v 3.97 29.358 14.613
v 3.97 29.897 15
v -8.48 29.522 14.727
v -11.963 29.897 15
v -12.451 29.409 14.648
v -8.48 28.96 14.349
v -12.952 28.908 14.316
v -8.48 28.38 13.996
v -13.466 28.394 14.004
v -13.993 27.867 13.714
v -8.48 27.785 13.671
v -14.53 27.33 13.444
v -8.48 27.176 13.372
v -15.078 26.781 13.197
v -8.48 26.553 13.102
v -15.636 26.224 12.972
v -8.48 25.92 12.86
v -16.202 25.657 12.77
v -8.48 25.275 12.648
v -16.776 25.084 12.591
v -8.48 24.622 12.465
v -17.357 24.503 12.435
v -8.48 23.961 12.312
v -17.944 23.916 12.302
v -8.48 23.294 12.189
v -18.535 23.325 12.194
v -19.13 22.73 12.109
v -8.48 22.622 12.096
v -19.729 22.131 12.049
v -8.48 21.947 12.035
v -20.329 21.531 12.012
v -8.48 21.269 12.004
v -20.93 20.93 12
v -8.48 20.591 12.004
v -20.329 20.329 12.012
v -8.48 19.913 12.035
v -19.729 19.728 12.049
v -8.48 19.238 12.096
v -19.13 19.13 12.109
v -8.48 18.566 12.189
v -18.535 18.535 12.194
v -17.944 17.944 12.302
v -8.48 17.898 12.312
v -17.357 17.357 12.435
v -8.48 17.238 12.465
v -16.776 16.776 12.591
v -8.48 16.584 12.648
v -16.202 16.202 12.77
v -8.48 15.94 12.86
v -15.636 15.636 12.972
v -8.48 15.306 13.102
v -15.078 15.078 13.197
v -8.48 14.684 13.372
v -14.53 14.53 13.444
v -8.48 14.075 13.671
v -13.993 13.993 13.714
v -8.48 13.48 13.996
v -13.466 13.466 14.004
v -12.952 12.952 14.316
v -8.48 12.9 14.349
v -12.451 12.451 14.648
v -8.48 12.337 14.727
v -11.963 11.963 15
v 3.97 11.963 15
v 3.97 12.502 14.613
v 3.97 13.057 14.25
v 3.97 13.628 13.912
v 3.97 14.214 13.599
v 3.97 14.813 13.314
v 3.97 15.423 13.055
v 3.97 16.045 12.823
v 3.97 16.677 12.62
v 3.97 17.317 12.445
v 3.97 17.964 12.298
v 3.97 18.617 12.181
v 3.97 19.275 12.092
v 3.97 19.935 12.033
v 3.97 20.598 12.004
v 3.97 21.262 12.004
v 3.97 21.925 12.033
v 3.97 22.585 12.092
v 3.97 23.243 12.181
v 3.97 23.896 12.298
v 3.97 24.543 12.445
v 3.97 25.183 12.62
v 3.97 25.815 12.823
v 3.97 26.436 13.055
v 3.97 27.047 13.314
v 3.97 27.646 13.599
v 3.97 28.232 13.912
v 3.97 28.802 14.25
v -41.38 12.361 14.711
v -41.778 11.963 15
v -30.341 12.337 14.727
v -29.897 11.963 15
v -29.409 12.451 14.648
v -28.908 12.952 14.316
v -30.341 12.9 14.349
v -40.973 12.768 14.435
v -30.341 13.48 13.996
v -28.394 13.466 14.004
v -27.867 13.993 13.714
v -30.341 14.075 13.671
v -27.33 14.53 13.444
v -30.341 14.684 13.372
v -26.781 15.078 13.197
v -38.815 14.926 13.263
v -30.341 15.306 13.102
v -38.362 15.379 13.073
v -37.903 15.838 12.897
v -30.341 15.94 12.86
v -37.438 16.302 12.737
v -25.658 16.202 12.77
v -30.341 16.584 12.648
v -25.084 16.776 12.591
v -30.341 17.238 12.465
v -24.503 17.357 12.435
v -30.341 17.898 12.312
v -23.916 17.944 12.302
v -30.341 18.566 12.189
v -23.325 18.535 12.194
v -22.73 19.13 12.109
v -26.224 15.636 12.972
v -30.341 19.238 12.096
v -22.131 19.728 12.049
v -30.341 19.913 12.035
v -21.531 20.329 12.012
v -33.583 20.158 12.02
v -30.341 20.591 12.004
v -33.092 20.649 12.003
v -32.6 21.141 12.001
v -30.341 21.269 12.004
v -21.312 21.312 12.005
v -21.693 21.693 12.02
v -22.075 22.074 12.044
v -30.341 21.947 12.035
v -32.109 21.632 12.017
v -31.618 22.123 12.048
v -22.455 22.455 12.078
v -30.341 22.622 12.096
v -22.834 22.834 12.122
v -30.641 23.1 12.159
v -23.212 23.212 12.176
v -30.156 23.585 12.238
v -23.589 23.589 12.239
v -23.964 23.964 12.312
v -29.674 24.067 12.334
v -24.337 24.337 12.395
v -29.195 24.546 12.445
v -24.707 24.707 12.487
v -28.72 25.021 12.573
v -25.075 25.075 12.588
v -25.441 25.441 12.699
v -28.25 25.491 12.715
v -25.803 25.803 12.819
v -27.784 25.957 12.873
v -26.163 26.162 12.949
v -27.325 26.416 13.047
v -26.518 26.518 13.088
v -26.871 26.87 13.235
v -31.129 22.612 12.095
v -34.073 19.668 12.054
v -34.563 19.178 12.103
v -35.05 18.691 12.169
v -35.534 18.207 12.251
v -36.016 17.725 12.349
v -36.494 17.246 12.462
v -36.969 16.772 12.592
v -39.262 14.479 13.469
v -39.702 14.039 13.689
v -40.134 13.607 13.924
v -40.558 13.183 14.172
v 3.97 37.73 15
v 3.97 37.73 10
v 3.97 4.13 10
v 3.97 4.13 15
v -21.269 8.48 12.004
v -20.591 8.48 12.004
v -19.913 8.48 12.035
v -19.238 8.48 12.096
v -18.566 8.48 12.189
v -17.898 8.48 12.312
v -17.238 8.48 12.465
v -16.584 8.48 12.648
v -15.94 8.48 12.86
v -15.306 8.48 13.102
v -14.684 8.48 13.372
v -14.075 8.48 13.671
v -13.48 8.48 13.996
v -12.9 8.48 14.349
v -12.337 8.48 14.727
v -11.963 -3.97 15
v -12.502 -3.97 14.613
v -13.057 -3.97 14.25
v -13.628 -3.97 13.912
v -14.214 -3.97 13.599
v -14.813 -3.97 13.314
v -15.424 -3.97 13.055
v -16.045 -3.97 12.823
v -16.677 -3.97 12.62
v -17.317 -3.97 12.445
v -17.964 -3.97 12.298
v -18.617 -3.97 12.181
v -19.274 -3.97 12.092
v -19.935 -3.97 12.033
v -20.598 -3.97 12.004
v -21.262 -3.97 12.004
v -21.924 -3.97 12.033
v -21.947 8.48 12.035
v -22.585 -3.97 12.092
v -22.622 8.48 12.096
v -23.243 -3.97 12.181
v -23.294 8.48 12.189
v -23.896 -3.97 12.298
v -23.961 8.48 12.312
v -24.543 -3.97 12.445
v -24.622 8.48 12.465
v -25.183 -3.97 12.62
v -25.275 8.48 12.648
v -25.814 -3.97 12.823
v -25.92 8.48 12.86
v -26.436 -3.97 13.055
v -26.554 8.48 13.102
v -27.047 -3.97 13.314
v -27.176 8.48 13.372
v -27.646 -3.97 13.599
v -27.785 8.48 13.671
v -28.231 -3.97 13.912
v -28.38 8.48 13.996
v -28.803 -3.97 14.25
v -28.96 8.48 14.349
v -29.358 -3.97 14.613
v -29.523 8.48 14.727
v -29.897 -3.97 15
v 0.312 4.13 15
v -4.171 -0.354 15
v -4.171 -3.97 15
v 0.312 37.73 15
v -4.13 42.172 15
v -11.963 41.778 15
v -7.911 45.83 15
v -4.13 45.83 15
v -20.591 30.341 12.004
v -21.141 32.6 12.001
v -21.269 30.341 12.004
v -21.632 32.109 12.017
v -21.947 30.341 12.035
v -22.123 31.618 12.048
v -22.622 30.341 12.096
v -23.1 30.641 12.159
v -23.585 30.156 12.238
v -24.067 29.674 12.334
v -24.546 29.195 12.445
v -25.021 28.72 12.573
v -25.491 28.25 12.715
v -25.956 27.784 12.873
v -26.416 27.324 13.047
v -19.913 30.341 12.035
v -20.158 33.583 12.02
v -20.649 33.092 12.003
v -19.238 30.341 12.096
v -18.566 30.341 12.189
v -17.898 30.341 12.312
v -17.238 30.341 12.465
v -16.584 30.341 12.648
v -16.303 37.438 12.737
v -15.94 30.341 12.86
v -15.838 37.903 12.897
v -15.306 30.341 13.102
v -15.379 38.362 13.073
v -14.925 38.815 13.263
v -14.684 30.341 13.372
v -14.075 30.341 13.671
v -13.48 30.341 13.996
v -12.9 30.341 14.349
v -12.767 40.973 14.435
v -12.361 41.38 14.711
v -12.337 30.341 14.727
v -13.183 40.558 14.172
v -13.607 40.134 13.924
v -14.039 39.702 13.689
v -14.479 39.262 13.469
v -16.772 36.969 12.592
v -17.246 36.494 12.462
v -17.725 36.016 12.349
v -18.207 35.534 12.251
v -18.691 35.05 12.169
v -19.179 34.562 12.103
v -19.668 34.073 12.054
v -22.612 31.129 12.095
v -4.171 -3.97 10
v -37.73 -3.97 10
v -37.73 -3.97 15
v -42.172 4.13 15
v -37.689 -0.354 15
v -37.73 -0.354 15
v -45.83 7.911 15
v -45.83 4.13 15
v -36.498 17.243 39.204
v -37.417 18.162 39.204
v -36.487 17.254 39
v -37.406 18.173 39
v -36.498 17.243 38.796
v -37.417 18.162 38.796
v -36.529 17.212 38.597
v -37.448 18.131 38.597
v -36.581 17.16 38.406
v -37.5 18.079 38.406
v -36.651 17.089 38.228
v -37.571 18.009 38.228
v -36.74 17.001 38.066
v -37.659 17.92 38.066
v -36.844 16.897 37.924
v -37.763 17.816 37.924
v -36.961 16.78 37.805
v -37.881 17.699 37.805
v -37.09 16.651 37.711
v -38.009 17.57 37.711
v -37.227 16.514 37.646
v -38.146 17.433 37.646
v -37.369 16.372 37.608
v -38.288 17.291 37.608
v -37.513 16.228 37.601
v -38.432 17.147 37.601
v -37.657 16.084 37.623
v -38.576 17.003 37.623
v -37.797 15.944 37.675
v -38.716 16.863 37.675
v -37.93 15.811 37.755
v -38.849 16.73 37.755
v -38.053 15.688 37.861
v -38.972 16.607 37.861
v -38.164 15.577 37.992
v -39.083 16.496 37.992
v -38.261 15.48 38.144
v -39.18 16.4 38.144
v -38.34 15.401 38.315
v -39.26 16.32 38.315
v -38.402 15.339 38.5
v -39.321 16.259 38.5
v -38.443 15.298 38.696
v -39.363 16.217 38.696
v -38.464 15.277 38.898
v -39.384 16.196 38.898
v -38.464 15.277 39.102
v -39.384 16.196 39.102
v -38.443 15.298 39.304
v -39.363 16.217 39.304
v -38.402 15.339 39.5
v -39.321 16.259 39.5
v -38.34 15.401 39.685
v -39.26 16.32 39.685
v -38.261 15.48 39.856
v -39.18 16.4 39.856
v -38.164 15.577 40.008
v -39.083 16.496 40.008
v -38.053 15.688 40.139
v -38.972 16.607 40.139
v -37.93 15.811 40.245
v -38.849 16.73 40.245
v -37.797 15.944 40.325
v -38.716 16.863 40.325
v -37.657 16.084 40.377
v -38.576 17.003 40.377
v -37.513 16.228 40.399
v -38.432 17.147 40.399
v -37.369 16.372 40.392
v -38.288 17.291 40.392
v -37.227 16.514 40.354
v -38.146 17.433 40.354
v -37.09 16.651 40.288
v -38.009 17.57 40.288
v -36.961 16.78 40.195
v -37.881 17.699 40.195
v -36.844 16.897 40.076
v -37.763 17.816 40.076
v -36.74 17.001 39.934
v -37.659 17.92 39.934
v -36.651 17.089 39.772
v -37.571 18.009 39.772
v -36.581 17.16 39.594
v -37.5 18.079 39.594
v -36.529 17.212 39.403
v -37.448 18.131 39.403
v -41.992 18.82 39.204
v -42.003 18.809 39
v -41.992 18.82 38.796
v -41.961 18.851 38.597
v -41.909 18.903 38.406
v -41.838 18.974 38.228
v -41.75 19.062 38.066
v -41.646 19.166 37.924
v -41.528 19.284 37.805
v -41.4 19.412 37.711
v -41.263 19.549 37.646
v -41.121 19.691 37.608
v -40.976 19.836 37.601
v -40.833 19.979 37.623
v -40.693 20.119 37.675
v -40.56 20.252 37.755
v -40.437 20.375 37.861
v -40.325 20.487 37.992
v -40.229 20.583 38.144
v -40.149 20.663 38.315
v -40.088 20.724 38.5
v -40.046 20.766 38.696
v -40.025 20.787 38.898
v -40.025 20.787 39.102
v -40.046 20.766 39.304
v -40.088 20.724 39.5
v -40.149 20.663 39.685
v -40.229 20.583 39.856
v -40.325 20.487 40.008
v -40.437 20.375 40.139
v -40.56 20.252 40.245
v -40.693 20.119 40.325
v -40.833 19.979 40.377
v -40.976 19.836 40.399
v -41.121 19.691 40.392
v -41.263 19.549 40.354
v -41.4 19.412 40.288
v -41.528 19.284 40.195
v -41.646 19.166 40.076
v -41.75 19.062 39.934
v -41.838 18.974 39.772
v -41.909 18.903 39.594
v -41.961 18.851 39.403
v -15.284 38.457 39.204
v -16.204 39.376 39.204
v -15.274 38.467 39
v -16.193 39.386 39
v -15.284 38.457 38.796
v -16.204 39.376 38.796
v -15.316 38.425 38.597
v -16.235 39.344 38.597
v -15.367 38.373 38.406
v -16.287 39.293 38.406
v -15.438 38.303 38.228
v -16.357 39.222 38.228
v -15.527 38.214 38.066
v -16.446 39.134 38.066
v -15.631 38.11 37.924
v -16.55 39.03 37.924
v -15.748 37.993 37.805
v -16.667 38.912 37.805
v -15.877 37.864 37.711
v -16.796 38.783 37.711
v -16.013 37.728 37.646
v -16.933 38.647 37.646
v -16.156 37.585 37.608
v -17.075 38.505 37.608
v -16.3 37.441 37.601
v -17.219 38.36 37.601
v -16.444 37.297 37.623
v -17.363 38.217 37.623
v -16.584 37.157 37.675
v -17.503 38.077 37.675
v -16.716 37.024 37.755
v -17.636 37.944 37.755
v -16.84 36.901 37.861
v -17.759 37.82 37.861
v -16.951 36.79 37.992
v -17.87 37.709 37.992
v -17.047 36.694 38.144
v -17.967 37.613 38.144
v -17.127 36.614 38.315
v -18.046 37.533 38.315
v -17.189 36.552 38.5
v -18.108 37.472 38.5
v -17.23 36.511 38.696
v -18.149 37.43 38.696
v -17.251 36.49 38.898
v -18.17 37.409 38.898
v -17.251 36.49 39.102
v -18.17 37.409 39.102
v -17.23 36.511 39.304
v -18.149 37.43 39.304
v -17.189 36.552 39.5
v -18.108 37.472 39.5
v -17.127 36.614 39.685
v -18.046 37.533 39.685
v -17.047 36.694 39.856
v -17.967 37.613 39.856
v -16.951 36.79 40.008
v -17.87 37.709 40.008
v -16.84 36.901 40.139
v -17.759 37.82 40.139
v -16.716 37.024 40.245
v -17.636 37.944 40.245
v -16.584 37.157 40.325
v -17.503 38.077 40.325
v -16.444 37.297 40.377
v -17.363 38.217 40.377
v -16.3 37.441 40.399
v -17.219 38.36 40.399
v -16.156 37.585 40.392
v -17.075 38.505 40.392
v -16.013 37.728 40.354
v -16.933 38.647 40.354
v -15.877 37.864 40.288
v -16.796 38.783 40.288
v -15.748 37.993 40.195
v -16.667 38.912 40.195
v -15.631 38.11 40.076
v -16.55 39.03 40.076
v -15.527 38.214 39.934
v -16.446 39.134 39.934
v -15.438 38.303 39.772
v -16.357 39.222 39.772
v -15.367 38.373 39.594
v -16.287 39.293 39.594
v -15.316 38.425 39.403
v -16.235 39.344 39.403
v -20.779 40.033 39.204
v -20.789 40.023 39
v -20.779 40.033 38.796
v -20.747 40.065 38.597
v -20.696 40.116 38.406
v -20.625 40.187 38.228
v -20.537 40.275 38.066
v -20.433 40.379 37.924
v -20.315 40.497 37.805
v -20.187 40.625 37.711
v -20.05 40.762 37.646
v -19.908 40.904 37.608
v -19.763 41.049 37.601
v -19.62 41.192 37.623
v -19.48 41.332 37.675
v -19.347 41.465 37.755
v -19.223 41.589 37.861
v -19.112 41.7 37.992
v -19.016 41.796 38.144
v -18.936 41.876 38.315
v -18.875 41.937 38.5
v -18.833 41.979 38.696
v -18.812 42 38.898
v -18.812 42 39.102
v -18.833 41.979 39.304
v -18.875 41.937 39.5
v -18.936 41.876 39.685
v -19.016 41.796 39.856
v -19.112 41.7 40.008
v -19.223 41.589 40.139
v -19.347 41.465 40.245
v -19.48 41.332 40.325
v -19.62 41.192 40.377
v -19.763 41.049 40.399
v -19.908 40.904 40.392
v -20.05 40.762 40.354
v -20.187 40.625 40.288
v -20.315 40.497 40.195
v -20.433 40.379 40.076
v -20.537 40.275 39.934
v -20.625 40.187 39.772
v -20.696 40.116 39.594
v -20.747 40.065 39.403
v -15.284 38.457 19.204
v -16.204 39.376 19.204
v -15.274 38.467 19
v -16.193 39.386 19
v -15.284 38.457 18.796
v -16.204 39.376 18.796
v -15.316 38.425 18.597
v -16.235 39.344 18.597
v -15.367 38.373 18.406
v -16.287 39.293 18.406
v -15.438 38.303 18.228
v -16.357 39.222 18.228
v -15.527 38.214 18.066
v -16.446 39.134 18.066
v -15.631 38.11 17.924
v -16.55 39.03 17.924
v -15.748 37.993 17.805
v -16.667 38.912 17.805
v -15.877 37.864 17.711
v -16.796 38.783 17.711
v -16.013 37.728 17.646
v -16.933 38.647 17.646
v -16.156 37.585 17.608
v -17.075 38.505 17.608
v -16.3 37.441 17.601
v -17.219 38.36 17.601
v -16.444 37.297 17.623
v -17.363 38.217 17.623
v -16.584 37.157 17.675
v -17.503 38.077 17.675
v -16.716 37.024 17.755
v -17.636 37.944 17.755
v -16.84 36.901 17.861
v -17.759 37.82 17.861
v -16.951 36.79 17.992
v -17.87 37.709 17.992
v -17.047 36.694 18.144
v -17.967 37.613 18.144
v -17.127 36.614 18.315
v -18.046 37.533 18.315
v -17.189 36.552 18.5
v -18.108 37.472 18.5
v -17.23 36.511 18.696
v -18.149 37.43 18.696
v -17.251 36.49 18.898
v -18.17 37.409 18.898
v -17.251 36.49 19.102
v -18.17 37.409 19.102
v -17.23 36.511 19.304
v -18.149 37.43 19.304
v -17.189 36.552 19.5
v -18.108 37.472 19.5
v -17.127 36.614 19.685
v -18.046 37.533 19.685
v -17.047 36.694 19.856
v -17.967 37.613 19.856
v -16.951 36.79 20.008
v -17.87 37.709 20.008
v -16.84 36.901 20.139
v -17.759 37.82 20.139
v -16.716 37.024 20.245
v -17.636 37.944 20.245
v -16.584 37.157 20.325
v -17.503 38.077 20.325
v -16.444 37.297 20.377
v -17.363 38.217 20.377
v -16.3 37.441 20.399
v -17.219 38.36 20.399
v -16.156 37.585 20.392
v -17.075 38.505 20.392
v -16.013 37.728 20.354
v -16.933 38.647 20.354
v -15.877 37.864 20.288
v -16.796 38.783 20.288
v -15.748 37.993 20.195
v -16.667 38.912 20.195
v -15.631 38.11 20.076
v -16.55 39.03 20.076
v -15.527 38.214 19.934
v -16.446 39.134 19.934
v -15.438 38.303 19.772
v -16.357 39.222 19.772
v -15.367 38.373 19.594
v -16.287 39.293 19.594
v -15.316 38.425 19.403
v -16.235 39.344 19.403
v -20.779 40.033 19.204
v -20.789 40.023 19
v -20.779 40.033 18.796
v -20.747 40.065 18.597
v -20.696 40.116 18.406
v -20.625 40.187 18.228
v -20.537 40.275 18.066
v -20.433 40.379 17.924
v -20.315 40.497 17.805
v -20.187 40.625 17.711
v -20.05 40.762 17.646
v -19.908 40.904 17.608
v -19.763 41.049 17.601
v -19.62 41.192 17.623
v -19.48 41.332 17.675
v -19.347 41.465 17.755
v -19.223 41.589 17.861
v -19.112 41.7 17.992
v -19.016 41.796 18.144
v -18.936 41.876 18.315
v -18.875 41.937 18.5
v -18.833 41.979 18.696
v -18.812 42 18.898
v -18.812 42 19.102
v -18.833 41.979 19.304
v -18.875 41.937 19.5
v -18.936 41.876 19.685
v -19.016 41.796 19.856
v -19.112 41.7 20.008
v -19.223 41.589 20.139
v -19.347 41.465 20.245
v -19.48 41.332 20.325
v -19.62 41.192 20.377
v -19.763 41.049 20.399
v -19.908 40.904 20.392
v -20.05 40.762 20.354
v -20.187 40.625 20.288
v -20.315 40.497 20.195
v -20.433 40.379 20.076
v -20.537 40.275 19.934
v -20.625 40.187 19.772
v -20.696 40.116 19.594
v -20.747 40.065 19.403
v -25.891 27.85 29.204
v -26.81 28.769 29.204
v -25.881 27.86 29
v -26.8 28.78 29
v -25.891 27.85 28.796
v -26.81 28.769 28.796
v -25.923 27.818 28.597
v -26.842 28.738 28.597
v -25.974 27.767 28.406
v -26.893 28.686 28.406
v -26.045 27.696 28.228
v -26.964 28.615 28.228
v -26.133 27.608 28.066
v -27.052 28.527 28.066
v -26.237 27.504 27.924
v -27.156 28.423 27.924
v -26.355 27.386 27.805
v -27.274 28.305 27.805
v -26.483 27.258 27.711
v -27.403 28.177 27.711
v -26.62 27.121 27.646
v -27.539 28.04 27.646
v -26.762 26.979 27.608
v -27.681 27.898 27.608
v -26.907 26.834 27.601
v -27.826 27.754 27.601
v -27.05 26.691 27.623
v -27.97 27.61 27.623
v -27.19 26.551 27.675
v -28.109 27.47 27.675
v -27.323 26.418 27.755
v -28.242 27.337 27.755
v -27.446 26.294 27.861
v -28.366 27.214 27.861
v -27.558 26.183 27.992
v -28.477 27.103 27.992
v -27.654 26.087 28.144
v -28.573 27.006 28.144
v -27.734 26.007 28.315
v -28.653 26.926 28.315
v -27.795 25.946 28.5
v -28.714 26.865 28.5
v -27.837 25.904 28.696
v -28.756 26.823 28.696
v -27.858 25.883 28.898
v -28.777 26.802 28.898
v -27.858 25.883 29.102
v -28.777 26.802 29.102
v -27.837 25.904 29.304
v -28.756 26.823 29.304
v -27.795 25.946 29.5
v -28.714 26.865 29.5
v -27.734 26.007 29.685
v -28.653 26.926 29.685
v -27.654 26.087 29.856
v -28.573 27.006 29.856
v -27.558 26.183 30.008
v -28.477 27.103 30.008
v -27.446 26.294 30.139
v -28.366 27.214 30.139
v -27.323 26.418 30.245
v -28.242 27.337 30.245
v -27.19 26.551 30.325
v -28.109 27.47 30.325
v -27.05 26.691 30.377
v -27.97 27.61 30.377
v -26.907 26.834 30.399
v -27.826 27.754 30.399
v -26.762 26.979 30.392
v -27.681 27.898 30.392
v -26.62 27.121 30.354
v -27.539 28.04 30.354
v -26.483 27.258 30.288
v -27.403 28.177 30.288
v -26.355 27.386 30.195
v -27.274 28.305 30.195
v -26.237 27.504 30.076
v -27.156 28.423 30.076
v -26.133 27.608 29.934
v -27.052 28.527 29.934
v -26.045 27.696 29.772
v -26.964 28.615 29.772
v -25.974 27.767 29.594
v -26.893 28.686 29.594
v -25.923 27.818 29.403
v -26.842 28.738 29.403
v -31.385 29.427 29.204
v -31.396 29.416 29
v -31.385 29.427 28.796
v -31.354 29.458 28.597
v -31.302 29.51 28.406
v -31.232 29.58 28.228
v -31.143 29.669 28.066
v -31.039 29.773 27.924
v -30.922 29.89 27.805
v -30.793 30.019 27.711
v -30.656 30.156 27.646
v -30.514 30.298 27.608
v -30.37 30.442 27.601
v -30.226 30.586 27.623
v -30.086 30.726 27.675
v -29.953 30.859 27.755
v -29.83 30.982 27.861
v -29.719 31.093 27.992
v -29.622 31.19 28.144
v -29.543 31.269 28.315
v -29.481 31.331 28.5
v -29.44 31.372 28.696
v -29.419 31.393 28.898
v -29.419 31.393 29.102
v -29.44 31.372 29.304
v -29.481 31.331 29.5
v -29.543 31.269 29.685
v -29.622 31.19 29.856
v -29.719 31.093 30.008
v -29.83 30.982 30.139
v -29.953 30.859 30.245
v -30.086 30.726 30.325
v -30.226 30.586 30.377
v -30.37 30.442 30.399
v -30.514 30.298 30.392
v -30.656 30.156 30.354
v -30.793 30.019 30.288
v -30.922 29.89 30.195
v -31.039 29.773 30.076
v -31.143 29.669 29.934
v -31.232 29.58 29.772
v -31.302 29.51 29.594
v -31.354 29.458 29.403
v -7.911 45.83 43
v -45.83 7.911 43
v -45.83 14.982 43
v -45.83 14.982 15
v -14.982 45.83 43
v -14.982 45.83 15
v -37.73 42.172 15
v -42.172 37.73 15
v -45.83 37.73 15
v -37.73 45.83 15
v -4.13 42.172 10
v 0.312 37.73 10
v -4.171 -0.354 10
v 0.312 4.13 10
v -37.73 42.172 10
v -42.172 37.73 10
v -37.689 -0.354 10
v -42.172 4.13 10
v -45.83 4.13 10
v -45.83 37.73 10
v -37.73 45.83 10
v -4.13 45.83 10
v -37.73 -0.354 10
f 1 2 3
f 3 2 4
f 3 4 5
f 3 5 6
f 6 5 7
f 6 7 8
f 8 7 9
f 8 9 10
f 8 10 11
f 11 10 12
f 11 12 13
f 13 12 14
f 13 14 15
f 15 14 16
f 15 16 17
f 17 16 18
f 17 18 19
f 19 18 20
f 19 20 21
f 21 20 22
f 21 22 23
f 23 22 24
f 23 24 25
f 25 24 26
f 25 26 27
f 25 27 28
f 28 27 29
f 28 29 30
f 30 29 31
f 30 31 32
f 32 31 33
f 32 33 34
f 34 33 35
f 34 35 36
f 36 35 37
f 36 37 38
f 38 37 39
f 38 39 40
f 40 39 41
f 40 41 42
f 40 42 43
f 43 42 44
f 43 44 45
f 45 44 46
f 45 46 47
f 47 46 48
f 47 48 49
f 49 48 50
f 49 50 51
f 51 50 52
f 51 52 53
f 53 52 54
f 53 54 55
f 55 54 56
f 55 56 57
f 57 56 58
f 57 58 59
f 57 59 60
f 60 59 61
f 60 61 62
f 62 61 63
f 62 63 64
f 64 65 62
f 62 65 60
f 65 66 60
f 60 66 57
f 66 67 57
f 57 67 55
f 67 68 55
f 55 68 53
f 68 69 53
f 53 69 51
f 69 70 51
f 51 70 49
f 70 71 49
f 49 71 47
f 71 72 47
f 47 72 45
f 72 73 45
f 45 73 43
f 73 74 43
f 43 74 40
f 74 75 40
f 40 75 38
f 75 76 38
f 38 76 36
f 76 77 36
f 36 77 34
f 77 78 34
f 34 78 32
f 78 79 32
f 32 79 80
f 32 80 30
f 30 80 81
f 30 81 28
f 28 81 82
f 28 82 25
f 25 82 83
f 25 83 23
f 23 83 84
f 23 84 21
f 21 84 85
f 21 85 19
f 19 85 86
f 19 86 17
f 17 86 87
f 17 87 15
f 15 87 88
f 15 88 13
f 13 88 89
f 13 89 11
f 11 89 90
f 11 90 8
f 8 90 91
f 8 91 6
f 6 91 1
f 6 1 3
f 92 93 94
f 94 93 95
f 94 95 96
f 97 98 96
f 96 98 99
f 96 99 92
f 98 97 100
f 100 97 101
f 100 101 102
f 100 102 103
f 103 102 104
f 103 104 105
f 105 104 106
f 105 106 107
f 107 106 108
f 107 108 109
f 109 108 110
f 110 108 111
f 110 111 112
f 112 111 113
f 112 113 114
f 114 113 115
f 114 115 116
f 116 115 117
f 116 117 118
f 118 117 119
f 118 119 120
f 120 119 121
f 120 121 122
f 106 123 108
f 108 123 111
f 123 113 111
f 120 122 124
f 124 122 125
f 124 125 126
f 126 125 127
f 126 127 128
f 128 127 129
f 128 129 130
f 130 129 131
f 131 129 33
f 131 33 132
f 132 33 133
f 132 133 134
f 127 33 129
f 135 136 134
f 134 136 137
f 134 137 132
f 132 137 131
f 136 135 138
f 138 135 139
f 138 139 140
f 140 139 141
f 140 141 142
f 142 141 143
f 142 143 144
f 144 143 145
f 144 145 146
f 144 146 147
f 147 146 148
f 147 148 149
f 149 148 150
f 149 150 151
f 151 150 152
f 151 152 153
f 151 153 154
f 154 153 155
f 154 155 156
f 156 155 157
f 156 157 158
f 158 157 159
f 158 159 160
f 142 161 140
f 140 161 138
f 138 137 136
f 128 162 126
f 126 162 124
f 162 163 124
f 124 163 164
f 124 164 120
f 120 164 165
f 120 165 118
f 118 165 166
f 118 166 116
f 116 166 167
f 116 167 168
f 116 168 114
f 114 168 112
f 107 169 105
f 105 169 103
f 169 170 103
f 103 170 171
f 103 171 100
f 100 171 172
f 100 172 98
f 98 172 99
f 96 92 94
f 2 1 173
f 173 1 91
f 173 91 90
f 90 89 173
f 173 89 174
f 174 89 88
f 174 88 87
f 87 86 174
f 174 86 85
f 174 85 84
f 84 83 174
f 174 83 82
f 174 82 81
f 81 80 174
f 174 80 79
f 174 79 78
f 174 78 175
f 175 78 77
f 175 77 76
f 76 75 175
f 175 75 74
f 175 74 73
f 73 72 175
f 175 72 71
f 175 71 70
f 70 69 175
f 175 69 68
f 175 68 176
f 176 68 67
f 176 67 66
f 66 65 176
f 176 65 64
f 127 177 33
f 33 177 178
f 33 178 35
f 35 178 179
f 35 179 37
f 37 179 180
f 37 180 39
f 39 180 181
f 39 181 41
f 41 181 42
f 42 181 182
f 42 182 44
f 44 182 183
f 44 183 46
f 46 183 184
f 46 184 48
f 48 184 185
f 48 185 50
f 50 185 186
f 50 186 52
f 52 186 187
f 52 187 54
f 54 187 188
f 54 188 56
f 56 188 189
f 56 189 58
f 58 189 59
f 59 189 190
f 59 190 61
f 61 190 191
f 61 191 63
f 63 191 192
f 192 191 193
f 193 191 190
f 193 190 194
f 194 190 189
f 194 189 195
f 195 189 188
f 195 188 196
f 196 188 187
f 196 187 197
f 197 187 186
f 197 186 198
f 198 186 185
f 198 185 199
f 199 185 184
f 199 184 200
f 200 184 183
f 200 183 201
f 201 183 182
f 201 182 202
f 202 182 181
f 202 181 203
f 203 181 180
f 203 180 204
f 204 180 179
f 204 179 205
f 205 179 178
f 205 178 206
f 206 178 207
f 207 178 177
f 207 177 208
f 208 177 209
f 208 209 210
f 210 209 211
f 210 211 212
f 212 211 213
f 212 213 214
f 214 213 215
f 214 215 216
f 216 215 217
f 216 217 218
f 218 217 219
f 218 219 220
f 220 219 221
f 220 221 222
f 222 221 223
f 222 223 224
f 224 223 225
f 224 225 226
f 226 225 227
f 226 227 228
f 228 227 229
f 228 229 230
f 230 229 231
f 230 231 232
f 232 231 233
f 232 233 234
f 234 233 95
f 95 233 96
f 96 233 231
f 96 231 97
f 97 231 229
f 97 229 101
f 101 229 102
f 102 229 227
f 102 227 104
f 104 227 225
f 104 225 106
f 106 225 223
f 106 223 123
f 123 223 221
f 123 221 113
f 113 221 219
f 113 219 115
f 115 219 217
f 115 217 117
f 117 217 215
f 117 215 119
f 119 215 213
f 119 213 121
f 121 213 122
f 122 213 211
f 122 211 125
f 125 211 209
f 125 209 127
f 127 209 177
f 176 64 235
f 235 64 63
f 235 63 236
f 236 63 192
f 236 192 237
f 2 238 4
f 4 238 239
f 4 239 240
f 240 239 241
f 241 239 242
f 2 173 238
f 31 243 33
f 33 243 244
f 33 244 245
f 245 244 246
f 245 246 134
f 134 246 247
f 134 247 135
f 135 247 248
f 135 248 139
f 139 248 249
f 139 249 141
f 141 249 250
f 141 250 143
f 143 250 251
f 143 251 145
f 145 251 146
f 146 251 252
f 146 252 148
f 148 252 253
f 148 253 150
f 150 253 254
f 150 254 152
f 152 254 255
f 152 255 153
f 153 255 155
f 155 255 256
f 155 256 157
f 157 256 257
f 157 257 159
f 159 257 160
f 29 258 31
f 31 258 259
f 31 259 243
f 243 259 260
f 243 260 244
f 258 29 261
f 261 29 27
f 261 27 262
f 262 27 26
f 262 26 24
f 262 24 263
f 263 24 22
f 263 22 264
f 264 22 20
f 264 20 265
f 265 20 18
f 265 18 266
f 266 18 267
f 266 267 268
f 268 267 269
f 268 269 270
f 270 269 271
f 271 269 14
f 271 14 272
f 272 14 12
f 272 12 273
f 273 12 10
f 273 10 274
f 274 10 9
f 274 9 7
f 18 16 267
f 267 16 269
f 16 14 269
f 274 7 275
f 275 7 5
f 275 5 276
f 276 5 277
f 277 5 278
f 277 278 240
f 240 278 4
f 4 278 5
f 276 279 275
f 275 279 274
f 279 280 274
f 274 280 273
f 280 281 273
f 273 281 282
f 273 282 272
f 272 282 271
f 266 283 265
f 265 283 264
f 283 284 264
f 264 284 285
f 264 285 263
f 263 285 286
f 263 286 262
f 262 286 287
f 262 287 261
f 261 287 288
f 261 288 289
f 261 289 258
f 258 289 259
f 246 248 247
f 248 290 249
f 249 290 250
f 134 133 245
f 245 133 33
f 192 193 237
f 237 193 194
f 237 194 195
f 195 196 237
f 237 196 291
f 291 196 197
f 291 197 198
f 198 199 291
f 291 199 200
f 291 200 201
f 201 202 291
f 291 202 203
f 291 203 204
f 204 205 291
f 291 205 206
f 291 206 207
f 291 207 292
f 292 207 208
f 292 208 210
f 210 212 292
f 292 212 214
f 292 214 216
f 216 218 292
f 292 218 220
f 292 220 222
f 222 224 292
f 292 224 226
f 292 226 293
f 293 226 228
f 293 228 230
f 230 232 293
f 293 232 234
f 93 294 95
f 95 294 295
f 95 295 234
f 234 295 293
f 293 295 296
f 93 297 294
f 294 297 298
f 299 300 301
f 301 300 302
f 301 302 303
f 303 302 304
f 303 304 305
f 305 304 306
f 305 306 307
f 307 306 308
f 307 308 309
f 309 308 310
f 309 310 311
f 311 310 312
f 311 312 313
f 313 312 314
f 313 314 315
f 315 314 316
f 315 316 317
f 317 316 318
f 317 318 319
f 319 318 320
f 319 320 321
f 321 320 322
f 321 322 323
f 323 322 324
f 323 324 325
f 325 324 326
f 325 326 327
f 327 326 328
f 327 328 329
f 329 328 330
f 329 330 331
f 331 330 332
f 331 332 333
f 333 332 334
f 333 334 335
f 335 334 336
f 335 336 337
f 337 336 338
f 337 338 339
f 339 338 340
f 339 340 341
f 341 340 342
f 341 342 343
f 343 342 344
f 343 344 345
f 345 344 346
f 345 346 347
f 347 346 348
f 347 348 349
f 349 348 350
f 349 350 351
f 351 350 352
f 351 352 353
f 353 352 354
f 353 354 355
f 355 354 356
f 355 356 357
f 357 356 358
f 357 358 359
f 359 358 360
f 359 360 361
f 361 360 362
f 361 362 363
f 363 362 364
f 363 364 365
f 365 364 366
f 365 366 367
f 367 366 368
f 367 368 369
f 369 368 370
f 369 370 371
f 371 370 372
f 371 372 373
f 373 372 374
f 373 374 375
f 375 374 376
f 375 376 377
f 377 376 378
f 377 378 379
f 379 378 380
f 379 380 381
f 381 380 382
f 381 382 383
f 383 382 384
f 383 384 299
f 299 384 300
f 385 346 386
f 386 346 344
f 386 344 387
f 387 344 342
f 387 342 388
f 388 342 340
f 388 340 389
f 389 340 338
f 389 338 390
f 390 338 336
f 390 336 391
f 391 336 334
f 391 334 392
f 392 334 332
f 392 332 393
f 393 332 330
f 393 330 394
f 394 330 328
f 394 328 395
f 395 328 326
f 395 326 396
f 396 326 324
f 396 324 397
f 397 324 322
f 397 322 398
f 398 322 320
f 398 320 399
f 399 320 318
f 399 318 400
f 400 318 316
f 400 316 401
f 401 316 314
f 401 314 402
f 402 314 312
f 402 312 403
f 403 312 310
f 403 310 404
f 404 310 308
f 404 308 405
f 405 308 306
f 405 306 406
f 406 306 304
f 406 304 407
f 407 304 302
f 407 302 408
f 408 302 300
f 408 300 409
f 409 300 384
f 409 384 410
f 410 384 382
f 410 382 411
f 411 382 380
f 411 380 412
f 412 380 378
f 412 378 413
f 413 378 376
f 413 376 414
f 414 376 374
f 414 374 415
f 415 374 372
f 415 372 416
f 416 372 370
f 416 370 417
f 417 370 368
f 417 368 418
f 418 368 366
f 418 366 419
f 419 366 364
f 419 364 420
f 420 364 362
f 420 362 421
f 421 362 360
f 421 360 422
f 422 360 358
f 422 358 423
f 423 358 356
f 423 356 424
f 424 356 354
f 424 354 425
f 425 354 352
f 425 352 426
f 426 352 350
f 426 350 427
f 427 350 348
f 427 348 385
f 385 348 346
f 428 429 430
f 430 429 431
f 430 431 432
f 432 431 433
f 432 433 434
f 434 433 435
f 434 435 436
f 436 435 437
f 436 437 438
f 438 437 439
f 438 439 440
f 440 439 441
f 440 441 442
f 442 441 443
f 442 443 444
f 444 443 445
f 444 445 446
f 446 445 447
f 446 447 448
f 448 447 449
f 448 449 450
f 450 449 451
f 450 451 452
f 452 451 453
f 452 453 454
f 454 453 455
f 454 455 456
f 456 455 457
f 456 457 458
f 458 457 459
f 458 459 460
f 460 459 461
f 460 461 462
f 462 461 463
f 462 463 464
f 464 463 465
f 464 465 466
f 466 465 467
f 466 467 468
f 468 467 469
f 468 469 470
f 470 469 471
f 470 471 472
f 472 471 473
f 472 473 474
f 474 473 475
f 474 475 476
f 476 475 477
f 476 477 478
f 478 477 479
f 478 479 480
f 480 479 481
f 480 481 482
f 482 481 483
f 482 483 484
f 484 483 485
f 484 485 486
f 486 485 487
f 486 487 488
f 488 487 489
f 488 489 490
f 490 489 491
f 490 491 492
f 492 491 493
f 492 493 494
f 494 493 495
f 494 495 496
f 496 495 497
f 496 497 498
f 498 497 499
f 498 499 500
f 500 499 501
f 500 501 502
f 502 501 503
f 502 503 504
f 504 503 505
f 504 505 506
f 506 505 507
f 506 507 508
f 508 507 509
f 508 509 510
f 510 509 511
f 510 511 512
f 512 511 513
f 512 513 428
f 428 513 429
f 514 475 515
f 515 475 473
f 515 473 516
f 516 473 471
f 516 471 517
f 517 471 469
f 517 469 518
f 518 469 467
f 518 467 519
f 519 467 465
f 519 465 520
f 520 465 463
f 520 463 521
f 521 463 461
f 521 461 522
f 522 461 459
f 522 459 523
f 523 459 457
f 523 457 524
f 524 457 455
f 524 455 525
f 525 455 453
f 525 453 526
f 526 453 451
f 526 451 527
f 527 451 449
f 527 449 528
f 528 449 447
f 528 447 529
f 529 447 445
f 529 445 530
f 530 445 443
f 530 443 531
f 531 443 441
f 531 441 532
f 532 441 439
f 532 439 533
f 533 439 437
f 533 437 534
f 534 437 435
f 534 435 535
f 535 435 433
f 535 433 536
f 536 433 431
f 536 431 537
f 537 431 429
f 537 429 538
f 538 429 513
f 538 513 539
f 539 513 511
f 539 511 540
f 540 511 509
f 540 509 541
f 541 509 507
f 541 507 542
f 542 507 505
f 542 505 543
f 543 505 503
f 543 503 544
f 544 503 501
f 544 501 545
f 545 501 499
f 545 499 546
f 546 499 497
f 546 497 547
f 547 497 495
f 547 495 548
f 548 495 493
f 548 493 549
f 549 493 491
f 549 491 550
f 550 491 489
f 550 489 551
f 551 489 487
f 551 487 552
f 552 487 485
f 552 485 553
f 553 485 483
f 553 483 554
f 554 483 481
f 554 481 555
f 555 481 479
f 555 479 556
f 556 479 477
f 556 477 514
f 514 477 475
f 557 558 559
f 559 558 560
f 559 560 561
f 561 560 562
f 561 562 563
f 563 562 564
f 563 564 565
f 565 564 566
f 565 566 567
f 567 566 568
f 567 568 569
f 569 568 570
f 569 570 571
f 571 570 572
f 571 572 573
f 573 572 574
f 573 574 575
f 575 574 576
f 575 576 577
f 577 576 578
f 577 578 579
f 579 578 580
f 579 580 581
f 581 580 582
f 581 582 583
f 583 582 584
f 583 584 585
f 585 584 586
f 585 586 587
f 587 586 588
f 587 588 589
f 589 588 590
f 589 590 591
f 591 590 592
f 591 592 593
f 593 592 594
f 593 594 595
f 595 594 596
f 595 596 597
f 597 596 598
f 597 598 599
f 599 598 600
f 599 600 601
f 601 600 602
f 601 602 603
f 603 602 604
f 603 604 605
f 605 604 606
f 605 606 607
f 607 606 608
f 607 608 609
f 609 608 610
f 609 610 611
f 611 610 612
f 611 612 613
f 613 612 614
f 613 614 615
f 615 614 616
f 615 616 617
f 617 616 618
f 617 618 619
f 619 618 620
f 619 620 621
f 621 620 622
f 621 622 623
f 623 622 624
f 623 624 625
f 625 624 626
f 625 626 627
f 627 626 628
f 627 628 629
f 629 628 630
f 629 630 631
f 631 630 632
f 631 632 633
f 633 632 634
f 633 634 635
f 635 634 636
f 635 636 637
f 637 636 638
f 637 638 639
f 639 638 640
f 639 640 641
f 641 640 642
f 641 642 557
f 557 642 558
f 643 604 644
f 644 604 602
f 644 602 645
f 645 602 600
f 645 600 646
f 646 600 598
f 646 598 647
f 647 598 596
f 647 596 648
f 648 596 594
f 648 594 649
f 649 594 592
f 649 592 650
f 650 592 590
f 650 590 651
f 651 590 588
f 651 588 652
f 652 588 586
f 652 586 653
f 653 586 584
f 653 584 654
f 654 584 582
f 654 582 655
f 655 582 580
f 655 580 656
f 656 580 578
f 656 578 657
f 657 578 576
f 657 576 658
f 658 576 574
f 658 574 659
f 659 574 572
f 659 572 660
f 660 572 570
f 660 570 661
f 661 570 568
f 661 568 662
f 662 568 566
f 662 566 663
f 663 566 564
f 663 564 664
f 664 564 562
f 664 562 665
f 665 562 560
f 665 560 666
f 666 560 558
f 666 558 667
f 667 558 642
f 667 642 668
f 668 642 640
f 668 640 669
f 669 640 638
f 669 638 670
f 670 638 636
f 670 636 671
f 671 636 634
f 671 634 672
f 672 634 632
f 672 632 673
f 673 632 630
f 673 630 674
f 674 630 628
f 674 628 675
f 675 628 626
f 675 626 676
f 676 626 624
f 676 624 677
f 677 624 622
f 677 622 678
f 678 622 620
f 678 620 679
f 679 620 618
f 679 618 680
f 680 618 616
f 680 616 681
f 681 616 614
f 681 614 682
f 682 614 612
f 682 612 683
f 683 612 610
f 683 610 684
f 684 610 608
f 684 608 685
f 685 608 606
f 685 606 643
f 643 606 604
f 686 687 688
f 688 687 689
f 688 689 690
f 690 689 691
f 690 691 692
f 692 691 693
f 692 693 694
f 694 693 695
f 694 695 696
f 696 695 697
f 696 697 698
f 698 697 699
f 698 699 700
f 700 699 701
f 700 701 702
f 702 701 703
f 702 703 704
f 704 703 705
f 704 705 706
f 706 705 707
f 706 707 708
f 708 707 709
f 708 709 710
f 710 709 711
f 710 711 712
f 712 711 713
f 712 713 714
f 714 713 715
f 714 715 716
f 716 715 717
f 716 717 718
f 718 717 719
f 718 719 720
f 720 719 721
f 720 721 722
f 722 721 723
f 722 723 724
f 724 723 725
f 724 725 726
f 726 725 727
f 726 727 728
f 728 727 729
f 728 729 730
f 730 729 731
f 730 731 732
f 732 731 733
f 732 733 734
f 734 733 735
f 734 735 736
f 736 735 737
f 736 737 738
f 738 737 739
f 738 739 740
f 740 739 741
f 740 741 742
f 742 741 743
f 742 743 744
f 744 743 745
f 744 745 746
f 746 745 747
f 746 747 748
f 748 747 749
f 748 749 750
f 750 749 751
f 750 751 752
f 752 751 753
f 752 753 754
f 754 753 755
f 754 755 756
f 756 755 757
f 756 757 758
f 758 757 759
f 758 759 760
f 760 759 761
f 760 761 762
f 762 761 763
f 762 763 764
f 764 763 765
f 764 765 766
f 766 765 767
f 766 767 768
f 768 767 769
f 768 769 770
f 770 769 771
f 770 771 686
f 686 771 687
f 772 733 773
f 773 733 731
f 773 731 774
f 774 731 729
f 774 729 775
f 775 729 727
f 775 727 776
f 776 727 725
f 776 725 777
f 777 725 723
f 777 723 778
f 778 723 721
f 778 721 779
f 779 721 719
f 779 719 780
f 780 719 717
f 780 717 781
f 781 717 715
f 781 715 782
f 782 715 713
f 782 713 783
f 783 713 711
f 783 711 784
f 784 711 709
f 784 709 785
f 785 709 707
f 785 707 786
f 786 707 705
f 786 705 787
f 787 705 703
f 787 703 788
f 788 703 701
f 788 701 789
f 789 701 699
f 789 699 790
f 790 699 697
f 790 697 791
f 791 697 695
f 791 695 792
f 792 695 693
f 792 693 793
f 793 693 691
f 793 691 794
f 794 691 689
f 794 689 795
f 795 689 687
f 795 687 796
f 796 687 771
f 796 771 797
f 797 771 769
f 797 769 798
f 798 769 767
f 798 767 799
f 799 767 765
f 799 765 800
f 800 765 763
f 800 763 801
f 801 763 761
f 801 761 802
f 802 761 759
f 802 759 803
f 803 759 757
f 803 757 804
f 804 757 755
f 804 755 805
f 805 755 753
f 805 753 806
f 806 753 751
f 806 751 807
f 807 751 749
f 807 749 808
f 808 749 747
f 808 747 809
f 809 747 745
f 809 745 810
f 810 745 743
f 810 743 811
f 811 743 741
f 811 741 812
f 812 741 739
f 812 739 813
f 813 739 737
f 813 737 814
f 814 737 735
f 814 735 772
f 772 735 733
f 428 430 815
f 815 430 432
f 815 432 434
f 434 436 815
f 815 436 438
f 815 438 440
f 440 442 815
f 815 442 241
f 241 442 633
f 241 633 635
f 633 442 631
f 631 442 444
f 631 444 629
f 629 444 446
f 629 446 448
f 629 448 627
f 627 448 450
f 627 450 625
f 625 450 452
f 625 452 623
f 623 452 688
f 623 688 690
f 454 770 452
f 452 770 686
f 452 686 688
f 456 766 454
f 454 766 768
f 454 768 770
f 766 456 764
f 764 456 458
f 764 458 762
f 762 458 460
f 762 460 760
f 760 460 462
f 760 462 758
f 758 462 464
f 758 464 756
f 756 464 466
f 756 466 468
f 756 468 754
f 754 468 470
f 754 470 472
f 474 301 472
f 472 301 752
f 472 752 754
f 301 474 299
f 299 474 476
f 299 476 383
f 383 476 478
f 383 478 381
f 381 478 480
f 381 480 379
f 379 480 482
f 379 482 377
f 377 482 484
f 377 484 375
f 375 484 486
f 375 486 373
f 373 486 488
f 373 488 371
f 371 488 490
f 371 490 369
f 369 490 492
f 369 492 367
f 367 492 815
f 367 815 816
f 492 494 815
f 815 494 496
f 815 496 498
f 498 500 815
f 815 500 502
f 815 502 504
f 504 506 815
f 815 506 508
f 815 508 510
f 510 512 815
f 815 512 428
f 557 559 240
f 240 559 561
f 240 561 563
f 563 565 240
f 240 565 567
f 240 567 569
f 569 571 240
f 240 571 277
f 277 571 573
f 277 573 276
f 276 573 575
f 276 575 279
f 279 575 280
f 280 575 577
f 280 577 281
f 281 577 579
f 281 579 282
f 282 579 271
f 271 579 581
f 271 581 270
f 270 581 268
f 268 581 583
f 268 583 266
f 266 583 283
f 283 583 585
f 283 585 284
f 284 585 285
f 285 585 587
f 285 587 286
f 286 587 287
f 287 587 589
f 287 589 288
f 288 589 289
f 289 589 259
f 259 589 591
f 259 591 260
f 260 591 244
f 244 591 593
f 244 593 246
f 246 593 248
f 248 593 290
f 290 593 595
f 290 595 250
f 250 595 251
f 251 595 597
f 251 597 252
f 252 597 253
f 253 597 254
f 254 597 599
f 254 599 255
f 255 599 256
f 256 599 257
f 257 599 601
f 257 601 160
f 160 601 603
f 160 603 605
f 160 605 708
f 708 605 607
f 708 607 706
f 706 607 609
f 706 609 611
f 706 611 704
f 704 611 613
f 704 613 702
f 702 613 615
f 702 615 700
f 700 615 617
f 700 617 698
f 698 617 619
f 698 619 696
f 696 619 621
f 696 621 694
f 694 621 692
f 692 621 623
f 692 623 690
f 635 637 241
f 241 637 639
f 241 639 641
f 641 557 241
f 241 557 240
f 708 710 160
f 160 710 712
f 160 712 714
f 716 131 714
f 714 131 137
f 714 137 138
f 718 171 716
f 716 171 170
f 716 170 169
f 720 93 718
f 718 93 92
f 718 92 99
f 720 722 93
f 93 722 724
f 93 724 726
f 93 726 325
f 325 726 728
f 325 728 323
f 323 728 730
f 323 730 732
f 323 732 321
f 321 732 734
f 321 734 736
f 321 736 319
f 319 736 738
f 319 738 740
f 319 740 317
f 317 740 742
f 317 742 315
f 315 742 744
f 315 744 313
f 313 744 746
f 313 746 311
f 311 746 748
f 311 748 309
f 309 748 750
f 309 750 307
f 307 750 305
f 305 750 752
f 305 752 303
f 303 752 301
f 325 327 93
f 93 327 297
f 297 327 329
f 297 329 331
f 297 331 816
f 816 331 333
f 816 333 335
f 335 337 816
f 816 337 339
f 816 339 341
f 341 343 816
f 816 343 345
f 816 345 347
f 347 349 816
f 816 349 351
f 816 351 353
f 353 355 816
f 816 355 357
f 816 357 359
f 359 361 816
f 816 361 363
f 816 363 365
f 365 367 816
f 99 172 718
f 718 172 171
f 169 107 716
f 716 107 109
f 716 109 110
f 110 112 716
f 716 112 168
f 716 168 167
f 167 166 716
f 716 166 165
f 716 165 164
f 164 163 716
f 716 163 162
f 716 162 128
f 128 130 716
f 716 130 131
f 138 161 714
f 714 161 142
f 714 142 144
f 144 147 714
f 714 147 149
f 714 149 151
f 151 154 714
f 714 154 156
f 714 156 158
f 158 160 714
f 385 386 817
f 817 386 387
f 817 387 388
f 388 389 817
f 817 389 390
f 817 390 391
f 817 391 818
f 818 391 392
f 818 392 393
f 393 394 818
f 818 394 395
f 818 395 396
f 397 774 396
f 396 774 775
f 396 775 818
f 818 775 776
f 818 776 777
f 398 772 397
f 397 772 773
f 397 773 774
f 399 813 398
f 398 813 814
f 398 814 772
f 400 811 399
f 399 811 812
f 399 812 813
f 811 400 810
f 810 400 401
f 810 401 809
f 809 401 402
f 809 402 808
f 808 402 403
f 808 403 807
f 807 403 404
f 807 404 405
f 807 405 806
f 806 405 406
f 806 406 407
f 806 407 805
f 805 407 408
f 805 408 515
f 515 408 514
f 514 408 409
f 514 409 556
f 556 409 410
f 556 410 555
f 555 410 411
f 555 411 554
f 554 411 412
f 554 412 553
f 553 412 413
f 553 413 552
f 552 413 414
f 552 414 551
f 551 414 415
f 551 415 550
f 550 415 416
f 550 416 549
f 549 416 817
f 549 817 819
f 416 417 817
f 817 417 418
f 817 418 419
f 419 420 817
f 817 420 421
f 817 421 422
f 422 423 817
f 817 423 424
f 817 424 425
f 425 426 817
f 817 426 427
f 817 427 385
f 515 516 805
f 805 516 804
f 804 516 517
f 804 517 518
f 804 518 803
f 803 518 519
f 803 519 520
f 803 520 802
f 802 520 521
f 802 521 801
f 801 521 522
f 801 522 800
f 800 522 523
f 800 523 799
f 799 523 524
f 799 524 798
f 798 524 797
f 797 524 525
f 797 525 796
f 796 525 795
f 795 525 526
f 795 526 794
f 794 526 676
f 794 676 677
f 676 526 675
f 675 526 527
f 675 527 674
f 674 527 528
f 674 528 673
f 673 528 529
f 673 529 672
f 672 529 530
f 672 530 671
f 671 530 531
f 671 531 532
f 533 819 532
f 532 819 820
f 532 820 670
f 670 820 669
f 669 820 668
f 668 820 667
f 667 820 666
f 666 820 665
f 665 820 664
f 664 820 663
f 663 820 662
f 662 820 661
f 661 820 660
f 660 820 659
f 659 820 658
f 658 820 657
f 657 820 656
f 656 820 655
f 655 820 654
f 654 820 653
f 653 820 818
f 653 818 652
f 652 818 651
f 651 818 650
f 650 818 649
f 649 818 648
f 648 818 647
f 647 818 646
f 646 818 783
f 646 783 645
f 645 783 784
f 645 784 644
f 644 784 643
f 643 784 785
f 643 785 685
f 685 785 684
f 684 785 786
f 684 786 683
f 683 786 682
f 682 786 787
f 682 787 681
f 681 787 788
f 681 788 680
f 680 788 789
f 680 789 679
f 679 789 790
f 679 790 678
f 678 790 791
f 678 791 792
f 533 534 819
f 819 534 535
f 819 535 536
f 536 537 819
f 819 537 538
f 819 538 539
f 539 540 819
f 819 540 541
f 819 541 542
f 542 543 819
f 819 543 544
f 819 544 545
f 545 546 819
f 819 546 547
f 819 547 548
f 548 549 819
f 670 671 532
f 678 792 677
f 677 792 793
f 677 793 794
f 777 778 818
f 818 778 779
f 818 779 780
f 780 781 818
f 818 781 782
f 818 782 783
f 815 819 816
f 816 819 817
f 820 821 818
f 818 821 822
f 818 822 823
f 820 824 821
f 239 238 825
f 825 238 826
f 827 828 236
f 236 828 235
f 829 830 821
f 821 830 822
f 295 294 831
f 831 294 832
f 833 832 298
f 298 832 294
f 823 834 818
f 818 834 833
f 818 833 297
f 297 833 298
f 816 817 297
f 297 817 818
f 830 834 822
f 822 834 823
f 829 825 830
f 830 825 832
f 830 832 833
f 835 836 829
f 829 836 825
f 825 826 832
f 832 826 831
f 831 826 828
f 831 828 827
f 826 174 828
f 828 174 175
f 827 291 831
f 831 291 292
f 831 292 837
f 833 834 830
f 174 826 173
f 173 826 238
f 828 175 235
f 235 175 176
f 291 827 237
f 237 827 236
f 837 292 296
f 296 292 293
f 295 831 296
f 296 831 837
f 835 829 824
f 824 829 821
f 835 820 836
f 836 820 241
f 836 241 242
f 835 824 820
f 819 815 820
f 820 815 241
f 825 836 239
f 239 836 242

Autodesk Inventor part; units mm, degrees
ref_plane "YZ Plane" through (0, 0, 0) normal (1, 0, 0) x (0, 1, 0)
ref_plane "XZ Plane" through (0, 0, 0) normal (0, 1, 0) x (-1, 0, 0)
ref_plane "Work Plane1" through (0, 0, 10) normal (0, 0, 1) x (1, 0, 0)
sketch "Sketch1" plane through (0, 0, 10) normal (0, 0, 1) x (1, 0, 0)
  line L0 (-4.0299, -0.3538) -> (-2.2322, 1.4439) construction
  arc A0 (-1.4439, 2.2322) -> (-2.2322, 1.4439) centre (-0.9299, 0.9299) ccw construction
  line L1 (-1.4439, 2.2322) -> (0.3538, 4.0299) construction
  line L2 (-37.8299, 42.8299) -> (-37.8299, 37.8299) construction
  line L3 (-37.8299, 37.8299) -> (-42.9208, 37.8299) construction
  line L4 (-37.8299, 42.2137) -> (-37.8299, 45.8299) construction
  line L5 (-37.8299, 45.8299) -> (-4.0299, 45.8299) construction
  line L6 (-4.0299, 45.8299) -> (-4.0299, 42.2137) construction
  line L7 (-4.0299, 4.0299) -> (0.3538, 4.0299) projected
  circle A1 centre (-20.9299, 20.9299) radius 17.5 projected
  line L8 (-20.9299, 58.9723) -> (17.1124, 20.9299) construction
  line L9 (17.1124, 20.9299) -> (-20.9299, -17.1124) construction
  line L10 (-20.9299, -17.1124) -> (-58.9723, 20.9299) construction
  line L11 (-58.9723, 20.9299) -> (-20.9299, 58.9723) construction
  line L12 (-20.9299, 58.9723) -> (-20.9299, -17.1124) construction
  line L13 (17.1124, 20.9299) -> (-58.9723, 20.9299) construction
  line L14 (-20.9299, 58.9723) -> (32.8701, 58.9723) construction
  line L15 (-43.4299, 43.4299) -> (1.5701, 43.4299) construction
  line L16 (1.5701, 43.4299) -> (1.5701, -1.5701) construction
  line L17 (1.5701, -1.5701) -> (-43.4299, -1.5701) construction
  line L18 (-43.4299, -1.5701) -> (-43.4299, 43.4299) construction
  line L19 (-43.4299, 43.4299) -> (1.5701, -1.5701) construction
  line L20 (1.5701, 43.4299) -> (-43.4299, -1.5701) construction
  line L21 (-43.4299, 5.3876) -> (-43.4299, 36.4723)
  line L22 (-43.4299, 36.4723) -> (-36.4723, 43.4299)
  line L23 (-36.4723, 43.4299) -> (-5.3876, 43.4299)
  line L24 (-5.3876, 43.4299) -> (1.5701, 36.4723)
  line L25 (1.5701, 36.4723) -> (1.5701, 5.3876)
  line L26 (1.5701, 5.3876) -> (-5.3876, -1.5701)
  line L27 (-5.3876, -1.5701) -> (-36.4723, -1.5701)
  line L28 (-36.4723, -1.5701) -> (-43.4299, 5.3876)
  line L29 (-4.0299, 42.2137) -> (-37.8299, 42.2137) projected
  line L30 (-4.0299, -0.3538) -> (-4.0299, 4.0299) projected
  circle A2 centre (-20.9299, 20.9299) radius 1.4
  line L31 (-10.9299, 10.9299) -> (-30.9299, 10.9299) construction
  line L32 (-30.9299, 10.9299) -> (-30.9299, 30.9299) construction
  line L33 (-30.9299, 30.9299) -> (-10.9299, 30.9299) construction
  line L34 (-10.9299, 30.9299) -> (-10.9299, 10.9299) construction
  line L35 (-10.9299, 10.9299) -> (-30.9299, 30.9299) construction
  line L36 (-30.9299, 10.9299) -> (-10.9299, 30.9299) construction
  circle A3 centre (-30.9299, 30.9299) radius 1.4
  circle A4 centre (-30.9299, 10.9299) radius 1.4
  circle A5 centre (-10.9299, 10.9299) radius 1.4
  line L37 (-45.8299, 37.8299) -> (-42.0723, 37.8299) construction
  line L38 (-42.1723, 37.7299) -> (-45.8299, 37.7299)
  line L39 (-45.8299, 37.7299) -> (-45.8299, 4.1299)
  line L40 (-45.8299, 4.1299) -> (-42.1723, 4.1299)
  line L41 (-42.1723, 4.1299) -> (-42.1723, 37.7299)
  line L42 (-45.8299, 4.0299) -> (-42.0723, 4.0299) construction
  line L43 (-45.8299, 37.8299) -> (-42.0723, 37.8299) projected
  line L44 (-37.7299, 45.8299) -> (-4.1299, 45.8299)
  line L45 (-4.1299, 45.8299) -> (-4.1299, 42.1723)
  line L46 (-4.1299, 42.1723) -> (-37.7299, 42.1723)
  line L47 (-37.7299, 42.1723) -> (-37.7299, 45.8299)
  line L48 (0.4701, 37.8299) -> (0.4701, 4.0299) construction
  line L49 (0.4701, 4.0299) -> (3.9701, 4.0299) construction
  line L50 (3.9701, 37.8299) -> (3.9701, 4.0299) construction
  line L51 (0.4701, 37.8299) -> (3.9701, 37.8299) construction
  line L52 (-45.8299, -3.9701) -> (-4.0299, -3.9701) construction
  line L53 (0.3124, 37.7299) -> (3.9701, 37.7299)
  line L54 (3.9701, 37.7299) -> (3.9701, 4.1299)
  line L55 (3.9701, 4.1299) -> (0.3124, 4.1299)
  line L56 (0.3124, 4.1299) -> (0.3124, 37.7299)
  line L57 (-4.1713, -0.3538) -> (-37.7299, -0.3538)
  line L58 (-37.7299, -0.3538) -> (-37.7299, -3.9701)
  line L59 (-37.7299, -3.9701) -> (-4.1713, -3.9701)
  line L60 (-4.1713, -3.9701) -> (-4.1713, -0.3538)
  point P0 (-37.8299, 4.0299)
  dimension "d18" = 53.8
  dimension "d19" = 45
  dimension "d20" = 53.8
  dimension "d21" = 45
  dimension "d22" = 45
  dimension "d30" = 20
  dimension "d31" = 20
  dimension "d32" = 2.8
  dimension "d33" = 2.8
  dimension "d34" = 2.8
  dimension "d35" = 2.8
  dimension "d36" = 0.1
  dimension "d37" = 0.1
  dimension "d38" = 0.1
  dimension "d39" = 0.1
extrude "Extrusion1" add sketch "Sketch1" along normal blind 5 contours L30 L26 L57 L28 L41 L22 L46 L24 L56 L7 | L7 L26 L30 | L56 L24 L25 L26 | L26 L25 L24 L53 L54 L55 | L60 L59 L58 L57 L28 L27 L26 | L26 L27 L28 L57 | L46 L22 L29 L24 | L24 L29 L45 | L40 L39 L38 L22 L21 L28 | L28 L21 L22 L41 | L29 L22 L23 L24 | L24 L23 L22 L29 L47 L44 L45 | L47 L29 L22 | A1 | A2 | A3 | A4 | A5
sketch "Sketch4" plane through (0, 0, 15) normal (0, 0, 1) x (1, 0, 0)
  line L0 (-37.7299, 42.1723) -> (-42.1723, 37.7299) projected
  line L1 (-42.1723, 37.7299) -> (-45.8299, 37.7299) projected
  line L2 (-45.8299, 37.7299) -> (-45.8299, 4.1299) projected
  line L3 (-45.8299, 4.1299) -> (-42.1723, 4.1299) projected
  line L4 (-42.1723, 4.1299) -> (-37.6885, -0.3538) projected
  line L5 (-37.6885, -0.3538) -> (-37.7299, -0.3538) projected
  line L6 (-37.7299, -0.3538) -> (-37.7299, -3.9701) projected
  line L7 (-37.7299, -3.9701) -> (-4.1713, -3.9701) projected
  line L8 (-4.1713, -3.9701) -> (-4.1713, -0.3538) projected
  line L9 (-4.1713, -0.3538) -> (0.3124, 4.1299) projected
  line L10 (0.3124, 4.1299) -> (3.9701, 4.1299) projected
  line L11 (3.9701, 4.1299) -> (3.9701, 37.7299) projected
  line L12 (3.9701, 37.7299) -> (0.3124, 37.7299) projected
  line L13 (0.3124, 37.7299) -> (-4.1299, 42.1723) projected
  line L14 (-4.1299, 42.1723) -> (-4.1299, 45.8299) projected
  line L15 (-4.1299, 45.8299) -> (-37.7299, 45.8299) projected
  line L16 (-37.7299, 45.8299) -> (-37.7299, 42.1723) projected
  line L17 (-45.8299, 37.7299) -> (-45.8299, 4.1299) projected
  line L18 (-45.8299, 7.911) -> (-7.911, 45.8299)
  line L19 (-45.8299, 7.911) -> (7.7955, 7.911) construction
  line L20 (-7.911, 45.8299) -> (-14.9821, 45.8299)
  line L21 (-4.1299, 45.8299) -> (-37.7299, 45.8299) projected
  line L22 (-14.9821, 45.8299) -> (-45.8299, 14.9821)
  line L23 (-45.8299, 7.911) -> (-45.8299, 14.9821)
  circle A0 centre (-40.9299, 0.9299) radius 1.1933 projected
  circle A1 centre (-0.9299, 40.9299) radius 1.4 projected
  line L24 (-40.9299, 0.9299) -> (-0.9299, 40.9299)
  line L25 (0.3124, 37.7299) -> (-4.1299, 42.1723) projected
  point P0 (0, 0)
  dimension "d40" = 45
  dimension "d41" = 5
extrude "Extrusion4" add sketch "Sketch4" along normal blind 28 contours L15 L18 L2 L22
sketch "Sketch5" plane through (-45.8299, 14.9821, 15) normal (-0.7071, 0.7071, 0) x (-0.7071, -0.7071, 0)
  line L0 (0, 0) -> (-43.6254, 0) projected
  line L1 (0, 0) -> (0, 28) projected
  line L2 (-43.6254, 28) -> (0, 28) projected
  line L3 (-43.6254, 0) -> (-43.6254, 28) projected
  circle A0 centre (-21.8127, 6.1873) radius 21.8127
  line L4 (-6.8127, 24) -> (-36.8127, 24) construction
  line L5 (-36.8127, 24) -> (-36.8127, 4) construction
  line L6 (-36.8127, 4) -> (-6.8127, 4) construction
  line L7 (-6.8127, 4) -> (-6.8127, 24) construction
  line L8 (-6.8127, 24) -> (-36.8127, 4) construction
  line L9 (-36.8127, 24) -> (-6.8127, 4) construction
  point P0 (-21.8127, -15)
  point P1 (-21.8127, 14)
  dimension "d44" = 30
  dimension "d45" = 20
hole "Hole1" at (-19.7994, 41.0126, 39) at (-19.7994, 41.0126, 19) at (-41.0126, 19.7994, 39) at (-30.406, 30.406, 29) direction (0.7071, -0.7071, 0) diameter 2.8 depth 12
sketch "Sketch6" plane through (-37.7299, -3.9701, 10) normal (0, -1, 0) x (1, 0, 0)
  circle A0 centre (-3.2, 36.9) radius 1.45 projected
  circle A1 centre (36.8, 36.9) radius 1.45 projected
  line L0 (-6.1, 0) -> (-6.1, 39.8) projected
  line L1 (-0.1, 0) -> (-6.1, 0) projected
  line L2 (-0.1, 33.8) -> (-0.1, 0) projected
  line L3 (33.7, 33.8) -> (-0.1, 33.8) projected
  line L4 (33.7, 33.8) -> (33.7, 0) projected
  line L5 (39.7, 0) -> (33.7, 0) projected
  line L6 (39.7, 39.8) -> (39.7, 0) projected
  line L7 (-6.1, 39.8) -> (39.7, 39.8) projected
  circle A2 centre (16.8, 16.9) radius 16.9
  circle A3 centre (16.8, 16.9) radius 14.9
  line L8 (-0.1, 16.9) -> (-0.1, 0)
  line L9 (0, 0) -> (33.5586, 0) projected
  line L10 (0.0414, 0) -> (-4.4423, 0) projected
  line L11 (33.5586, 0) -> (0.0414, 0)
  line L12 (33.7, 16.9) -> (33.5586, 0)
  point P0 (37.7299, -10)
  dimension "d53" = 2
extrude "Extrusion5" cut sketch "Sketch6" against normal up to surface contours A3 surface through (-45.8299, 7.911, 15) normal (0.7071, -0.7071, 0)
ref_plane "Work Plane3" through (3.9701, 45.8299, 26) normal (1, 0, 0) x (0, -1, 0)
sketch "Sketch7" plane through (3.9701, 45.8299, 26) normal (1, 0, 0) x (0, -1, 0)
  line L0 (41.8, -17.8) -> (41.8, 16) projected
  line L1 (8, -17.8) -> (41.8, -17.8) projected
  line L2 (8, -17.8) -> (8, 16) projected
  circle A0 centre (24.9, -0.9) radius 16.9
  circle A1 centre (24.9, -0.9) radius 14.9
  point P0 (45.8299, 26)
  dimension "d56" = 2
ref_plane "Work Plane4" through (-34.8055, 8.3289, 16.6138) normal (0.7071, -0.7071, 0) x (0.7071, 0.7071, 0)
extrude "Extrusion6" cut sketch "Sketch7" against normal up to surface contours A1 surface through (-45.8299, 7.911, 15) normal (0.7071, -0.7071, 0)
properties part number "20_Cube_Insert_Kinematic_Mirrormount_45_base"
